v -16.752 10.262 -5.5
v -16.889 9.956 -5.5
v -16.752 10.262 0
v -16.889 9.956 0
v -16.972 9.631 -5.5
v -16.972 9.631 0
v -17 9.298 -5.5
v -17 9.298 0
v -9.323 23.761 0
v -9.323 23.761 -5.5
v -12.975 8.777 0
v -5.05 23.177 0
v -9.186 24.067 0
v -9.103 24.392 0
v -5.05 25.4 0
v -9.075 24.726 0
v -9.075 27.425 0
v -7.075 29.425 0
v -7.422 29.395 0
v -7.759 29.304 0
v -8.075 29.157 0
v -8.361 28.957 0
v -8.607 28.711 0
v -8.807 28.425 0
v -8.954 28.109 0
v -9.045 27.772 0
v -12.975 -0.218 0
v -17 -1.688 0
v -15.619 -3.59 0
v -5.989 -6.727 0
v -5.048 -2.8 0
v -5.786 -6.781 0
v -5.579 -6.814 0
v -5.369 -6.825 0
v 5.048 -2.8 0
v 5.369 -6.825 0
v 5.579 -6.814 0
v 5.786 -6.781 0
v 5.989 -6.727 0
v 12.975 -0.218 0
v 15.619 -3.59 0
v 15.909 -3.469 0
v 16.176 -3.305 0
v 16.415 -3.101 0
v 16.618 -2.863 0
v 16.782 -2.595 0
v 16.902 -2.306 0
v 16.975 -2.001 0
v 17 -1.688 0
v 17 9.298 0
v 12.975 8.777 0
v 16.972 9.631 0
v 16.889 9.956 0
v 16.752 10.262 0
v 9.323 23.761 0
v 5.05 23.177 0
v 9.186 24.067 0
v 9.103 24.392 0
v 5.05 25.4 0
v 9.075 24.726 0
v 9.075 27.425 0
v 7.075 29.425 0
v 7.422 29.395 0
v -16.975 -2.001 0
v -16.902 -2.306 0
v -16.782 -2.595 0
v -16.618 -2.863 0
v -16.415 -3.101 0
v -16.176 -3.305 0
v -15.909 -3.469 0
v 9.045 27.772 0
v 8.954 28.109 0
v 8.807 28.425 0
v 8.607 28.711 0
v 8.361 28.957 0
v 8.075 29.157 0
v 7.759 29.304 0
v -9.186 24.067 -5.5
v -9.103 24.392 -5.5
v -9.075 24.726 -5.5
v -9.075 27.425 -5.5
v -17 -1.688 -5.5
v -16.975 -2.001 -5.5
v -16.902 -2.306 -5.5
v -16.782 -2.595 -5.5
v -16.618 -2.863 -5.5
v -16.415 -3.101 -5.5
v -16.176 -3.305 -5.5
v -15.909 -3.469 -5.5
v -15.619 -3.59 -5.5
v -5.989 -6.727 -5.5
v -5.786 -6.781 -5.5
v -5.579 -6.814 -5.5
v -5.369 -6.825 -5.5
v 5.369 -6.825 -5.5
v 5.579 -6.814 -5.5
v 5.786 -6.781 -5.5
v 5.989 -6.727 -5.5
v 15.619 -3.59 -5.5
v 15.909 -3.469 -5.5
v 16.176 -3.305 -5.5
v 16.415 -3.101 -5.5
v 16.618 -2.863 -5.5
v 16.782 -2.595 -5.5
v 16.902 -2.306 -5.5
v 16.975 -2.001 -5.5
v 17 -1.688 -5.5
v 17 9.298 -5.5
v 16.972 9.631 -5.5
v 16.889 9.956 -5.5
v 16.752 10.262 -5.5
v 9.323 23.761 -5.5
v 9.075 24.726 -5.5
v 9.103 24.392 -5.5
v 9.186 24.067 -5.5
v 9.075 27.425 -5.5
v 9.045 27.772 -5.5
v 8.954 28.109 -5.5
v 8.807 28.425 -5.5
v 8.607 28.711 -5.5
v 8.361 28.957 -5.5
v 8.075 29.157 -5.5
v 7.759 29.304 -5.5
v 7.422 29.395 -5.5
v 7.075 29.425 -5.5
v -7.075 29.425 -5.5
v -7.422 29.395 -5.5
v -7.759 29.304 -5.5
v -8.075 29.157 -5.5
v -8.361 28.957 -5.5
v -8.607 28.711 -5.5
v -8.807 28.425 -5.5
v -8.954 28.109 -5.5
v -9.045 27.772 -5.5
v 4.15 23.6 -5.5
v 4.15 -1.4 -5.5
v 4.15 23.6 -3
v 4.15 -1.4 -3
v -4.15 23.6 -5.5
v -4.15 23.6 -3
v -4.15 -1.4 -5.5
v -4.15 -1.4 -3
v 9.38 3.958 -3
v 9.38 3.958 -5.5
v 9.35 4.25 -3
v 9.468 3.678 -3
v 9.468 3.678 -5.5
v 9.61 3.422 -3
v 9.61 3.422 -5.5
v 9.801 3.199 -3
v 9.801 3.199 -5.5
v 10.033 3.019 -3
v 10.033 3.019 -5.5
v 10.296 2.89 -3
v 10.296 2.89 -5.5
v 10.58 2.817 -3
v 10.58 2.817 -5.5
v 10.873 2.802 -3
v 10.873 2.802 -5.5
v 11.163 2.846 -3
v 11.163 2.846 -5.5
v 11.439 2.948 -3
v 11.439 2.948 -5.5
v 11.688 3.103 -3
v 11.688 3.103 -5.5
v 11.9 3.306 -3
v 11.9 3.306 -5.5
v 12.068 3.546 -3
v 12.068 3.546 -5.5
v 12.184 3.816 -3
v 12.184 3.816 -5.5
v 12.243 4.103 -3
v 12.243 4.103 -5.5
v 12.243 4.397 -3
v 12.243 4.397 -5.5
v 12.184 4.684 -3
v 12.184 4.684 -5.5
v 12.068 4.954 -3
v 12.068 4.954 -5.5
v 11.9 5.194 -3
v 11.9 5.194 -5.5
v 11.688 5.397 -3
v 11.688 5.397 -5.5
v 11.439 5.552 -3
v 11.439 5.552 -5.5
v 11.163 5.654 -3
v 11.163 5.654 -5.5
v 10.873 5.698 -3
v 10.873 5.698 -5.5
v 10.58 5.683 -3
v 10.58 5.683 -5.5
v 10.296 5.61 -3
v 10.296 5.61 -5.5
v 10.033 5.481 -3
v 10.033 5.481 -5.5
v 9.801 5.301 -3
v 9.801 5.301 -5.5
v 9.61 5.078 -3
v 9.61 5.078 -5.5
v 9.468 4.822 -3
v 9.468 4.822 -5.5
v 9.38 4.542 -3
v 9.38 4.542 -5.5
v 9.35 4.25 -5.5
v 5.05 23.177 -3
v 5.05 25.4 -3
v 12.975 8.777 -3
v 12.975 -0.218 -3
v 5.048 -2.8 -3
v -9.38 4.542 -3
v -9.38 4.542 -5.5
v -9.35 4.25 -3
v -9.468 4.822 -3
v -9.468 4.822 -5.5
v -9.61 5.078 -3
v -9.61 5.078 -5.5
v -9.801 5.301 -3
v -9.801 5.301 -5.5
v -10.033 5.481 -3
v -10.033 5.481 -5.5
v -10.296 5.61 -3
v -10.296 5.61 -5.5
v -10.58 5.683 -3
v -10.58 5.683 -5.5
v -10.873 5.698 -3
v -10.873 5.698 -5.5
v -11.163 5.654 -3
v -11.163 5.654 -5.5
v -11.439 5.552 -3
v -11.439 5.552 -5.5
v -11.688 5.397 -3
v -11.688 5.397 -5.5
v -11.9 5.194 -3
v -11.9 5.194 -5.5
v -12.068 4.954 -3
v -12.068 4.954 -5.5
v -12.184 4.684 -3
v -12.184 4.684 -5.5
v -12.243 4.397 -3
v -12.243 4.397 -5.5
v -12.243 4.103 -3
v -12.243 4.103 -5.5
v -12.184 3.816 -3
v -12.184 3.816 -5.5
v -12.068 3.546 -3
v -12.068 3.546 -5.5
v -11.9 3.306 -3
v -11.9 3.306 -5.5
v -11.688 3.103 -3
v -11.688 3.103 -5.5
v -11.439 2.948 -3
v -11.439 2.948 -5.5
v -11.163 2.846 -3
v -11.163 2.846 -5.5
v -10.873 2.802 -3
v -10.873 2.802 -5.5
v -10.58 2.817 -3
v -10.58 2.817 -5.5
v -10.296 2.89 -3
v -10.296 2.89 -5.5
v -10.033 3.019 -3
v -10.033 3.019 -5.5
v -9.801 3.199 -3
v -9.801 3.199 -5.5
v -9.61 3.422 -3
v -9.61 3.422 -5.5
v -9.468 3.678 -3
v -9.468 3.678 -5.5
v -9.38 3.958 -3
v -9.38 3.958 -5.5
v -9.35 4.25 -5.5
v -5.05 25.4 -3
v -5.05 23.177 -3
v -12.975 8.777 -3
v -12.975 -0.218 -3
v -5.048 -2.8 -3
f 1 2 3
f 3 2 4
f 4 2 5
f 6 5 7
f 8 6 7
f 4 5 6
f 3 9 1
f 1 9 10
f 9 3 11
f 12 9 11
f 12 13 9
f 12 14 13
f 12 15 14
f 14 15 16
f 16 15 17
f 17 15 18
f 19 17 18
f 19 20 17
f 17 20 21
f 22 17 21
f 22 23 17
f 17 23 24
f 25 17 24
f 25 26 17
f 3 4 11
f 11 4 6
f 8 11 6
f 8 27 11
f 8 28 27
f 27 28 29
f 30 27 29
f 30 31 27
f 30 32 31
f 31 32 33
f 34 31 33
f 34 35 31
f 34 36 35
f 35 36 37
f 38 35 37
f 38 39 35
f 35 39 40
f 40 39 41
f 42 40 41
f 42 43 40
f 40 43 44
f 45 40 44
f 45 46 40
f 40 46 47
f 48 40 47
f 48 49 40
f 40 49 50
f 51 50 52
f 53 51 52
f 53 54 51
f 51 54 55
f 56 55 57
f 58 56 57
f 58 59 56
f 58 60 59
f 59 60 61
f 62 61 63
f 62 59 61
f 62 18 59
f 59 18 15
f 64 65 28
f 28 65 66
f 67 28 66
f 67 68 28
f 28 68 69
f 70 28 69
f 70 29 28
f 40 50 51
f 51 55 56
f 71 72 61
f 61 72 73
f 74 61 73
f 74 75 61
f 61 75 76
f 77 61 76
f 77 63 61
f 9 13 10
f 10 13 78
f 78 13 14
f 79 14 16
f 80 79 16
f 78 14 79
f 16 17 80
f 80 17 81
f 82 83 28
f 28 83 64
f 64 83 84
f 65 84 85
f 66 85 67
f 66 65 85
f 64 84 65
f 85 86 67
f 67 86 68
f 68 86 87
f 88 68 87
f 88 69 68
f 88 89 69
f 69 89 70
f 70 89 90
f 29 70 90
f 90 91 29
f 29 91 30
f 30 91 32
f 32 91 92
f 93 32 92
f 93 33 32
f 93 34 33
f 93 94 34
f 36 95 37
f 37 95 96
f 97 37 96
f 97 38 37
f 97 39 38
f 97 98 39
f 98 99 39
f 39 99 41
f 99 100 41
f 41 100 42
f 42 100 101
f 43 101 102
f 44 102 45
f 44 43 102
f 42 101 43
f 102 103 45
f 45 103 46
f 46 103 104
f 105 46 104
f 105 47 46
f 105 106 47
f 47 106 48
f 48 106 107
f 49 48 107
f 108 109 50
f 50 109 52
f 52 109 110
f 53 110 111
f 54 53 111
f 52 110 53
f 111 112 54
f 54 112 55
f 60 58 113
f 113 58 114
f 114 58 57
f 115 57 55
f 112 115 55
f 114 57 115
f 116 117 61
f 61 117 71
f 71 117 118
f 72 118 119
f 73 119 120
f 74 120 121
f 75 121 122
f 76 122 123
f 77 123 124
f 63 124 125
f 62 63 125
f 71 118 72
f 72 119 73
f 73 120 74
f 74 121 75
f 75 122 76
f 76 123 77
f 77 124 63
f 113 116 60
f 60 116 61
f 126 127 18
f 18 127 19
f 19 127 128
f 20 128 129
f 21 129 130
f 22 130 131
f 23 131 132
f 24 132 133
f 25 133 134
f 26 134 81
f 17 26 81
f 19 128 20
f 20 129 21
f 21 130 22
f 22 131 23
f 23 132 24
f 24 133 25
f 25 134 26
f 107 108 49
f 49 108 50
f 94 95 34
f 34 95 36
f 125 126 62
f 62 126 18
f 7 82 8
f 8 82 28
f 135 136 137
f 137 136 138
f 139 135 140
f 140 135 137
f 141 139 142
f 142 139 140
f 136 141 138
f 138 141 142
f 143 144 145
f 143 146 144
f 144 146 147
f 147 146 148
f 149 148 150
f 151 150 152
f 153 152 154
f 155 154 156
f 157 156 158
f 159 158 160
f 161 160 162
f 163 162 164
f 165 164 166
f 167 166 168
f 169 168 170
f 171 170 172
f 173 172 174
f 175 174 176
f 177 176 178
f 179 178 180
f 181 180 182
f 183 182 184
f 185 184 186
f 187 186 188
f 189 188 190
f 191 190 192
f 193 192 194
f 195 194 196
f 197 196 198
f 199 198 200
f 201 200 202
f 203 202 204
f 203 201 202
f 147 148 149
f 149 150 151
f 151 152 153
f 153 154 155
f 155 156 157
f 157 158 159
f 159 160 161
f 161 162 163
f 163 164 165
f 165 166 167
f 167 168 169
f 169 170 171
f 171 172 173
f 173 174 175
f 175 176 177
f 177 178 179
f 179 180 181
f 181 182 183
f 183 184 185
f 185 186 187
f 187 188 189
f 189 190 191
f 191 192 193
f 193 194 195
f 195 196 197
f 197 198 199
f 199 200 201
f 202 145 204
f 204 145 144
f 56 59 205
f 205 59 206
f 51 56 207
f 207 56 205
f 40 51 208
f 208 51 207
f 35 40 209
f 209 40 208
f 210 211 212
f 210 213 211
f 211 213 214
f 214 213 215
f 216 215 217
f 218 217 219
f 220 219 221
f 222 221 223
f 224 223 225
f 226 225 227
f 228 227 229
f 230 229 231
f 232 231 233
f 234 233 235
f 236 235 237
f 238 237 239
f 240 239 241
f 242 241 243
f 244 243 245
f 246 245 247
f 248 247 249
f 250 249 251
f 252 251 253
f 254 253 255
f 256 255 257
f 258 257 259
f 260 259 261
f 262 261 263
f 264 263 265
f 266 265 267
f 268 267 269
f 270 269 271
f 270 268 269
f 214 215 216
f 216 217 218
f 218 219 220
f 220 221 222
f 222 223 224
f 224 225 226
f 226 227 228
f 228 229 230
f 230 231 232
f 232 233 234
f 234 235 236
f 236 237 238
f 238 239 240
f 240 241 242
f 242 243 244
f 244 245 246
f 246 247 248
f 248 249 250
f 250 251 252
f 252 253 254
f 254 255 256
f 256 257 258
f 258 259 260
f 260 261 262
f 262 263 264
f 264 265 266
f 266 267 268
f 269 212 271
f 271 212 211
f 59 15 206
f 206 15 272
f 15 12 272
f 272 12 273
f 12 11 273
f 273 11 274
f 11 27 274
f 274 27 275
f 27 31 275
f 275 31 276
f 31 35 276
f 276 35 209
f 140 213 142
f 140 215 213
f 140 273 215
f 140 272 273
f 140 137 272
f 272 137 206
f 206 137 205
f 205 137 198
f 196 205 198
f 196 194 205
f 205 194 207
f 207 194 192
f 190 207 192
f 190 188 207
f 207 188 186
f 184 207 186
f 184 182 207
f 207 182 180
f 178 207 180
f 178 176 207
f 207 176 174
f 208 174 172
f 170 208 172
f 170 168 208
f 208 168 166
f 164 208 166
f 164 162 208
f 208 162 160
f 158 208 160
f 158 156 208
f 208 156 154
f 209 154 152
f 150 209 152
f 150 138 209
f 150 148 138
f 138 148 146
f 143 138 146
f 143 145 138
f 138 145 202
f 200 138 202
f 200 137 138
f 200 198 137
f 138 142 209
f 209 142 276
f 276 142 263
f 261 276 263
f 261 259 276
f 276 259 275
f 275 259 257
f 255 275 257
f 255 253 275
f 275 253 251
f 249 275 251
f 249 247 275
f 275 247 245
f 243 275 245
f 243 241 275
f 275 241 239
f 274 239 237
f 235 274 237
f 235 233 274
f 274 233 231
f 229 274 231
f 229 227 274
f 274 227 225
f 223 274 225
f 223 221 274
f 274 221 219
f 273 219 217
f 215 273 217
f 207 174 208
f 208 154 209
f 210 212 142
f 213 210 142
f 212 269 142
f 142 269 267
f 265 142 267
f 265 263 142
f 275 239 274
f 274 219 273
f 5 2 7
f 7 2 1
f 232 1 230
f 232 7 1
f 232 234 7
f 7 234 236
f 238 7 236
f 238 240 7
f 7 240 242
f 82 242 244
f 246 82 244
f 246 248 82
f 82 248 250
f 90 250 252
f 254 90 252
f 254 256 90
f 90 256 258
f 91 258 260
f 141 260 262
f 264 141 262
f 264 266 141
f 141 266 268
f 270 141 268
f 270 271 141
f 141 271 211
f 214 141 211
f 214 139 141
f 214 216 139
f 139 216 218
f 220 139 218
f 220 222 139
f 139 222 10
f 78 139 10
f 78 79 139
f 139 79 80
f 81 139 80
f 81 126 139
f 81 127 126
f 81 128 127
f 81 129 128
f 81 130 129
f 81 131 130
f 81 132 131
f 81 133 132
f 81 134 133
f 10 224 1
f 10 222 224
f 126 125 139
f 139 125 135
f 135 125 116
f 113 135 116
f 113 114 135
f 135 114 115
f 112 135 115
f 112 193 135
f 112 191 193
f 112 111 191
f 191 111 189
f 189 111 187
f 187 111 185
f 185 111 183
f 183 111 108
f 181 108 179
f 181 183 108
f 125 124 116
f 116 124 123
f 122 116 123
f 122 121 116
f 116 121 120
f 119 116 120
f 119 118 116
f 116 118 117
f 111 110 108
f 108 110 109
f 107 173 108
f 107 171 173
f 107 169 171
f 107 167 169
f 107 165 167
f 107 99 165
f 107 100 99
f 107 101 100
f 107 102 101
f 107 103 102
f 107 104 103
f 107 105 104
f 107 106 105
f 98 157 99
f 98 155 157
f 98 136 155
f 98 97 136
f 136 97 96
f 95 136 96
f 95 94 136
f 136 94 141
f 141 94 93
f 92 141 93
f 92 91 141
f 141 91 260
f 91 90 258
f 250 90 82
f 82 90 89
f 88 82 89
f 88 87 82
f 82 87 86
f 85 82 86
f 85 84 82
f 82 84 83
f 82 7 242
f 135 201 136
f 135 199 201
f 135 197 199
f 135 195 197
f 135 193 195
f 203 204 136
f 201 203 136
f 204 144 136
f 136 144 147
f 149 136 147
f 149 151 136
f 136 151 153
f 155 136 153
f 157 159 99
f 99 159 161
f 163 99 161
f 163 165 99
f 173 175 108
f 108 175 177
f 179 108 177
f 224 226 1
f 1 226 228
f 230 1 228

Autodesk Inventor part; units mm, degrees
ref_plane "YZ Plane" through (0, 0, 0) normal (1, 0, 0) x (0, 1, 0)
ref_plane "XZ Plane" through (0, 0, 0) normal (0, 1, 0) x (-1, 0, 0)
ref_plane "XY Plane" through (0, 0, 0) normal (0, 0, 1) x (1, 0, 0)
sketch "Sketch1" plane through (0, 0, 0) normal (0, 0, 1) x (1, 0, 0)
  line L0 (-5, -2.5) -> (5, -2.5) construction
  line L1 (5, -2.5) -> (12.675, 0) construction
  line L2 (-5, -2.5) -> (-12.675, 0)
  line L3 (12.675, 0) -> (-12.675, 0) construction
  line L4 (12.675, 0) -> (12.675, 8.7) construction
  line L5 (-12.675, 0) -> (-12.675, 8.7)
  line L6 (-12.675, 8.7) -> (-4.75, 23.1)
  line L7 (-4.75, 23.1) -> (-4.75, 25.1)
  line L8 (-4.75, 25.1) -> (4.75, 25.1) construction
  line L9 (4.75, 25.1) -> (4.75, 23.1) construction
  line L10 (4.75, 23.1) -> (12.675, 8.7) construction
  line L11 (0, -8.44) -> (0, 31.04) projected
  line L12 (0, 25.1) -> (0, -2.5)
  circle A0 centre (-10.8, 4.25) radius 1.25
  line L13 (-10.8, 4.25) -> (0, 4.25) construction
  line L14 (-4.75, 25.1) -> (0, 25.1)
  line L15 (-5, -2.5) -> (0, -2.5)
  line L16 (-5.05, 23.1771) -> (-12.975, 8.7771)
  line L17 (-12.975, 8.7771) -> (-12.975, -0.2178)
  line L18 (-12.975, -0.2178) -> (-5.0476, -2.8)
  line L19 (-5.0476, -2.8) -> (0.3, -2.8) construction
  line L20 (0.3, -2.8) -> (0.3, 25.4) construction
  line L21 (0.3, 25.4) -> (-5.05, 25.4) construction
  line L22 (-5.05, 25.4) -> (-5.05, 23.1771)
  line L23 (0, -2.5) -> (0, -2.8)
  line L24 (0, 25.1) -> (0, 25.4)
  line L25 (0, -2.8) -> (-5.0476, -2.8)
  line L26 (0, 25.4) -> (-5.05, 25.4)
  point P0 (0, 0)
  point P1 (0, 0)
  dimension "d0" = 10
  dimension "d1" = 25.35
  dimension "d2" = 2.5
  dimension "d3" = 8.7
  dimension "d4" = 27.6
  dimension "d6" = 2
  dimension "d7" = 9.5
  dimension "d42" = 2.5
  dimension "d43" = 10.8
  dimension "d44" = 6.75
  dimension "d53" = 0.3
sketch "Sketch8" plane through (0, 0, 0) normal (0, 0, 1) x (1, 0, 0)
  line L0 (-20, 30) -> (20, 30)
  line L1 (20, 30) -> (20, -10)
  line L2 (20, -10) -> (-20, -10)
  line L3 (-20, -10) -> (-20, 30)
  point P0 (0, 0)
  point P1 (0, -10)
  dimension "d45" = 40
  dimension "d46" = 10
extrude "MainBlock" add sketch "Sketch8" against normal blind 5.5
extrude "CartridgeCutout" cut sketch "Sketch1" against normal blind 3
sketch "Sketch10" plane through (-10.8, 4.25, 0) normal (0, 0, 1) x (1, 0, 0)
  circle A0 centre (0, 0) radius 1.25 projected
  circle A1 centre (0, 0) radius 1.45
  point P0 (10.8, -4.25)
  dimension "d56" = 0.2
extrude "PinHole" cut sketch "Sketch10" against normal through all contours A0 | A1
mirror "Mirror3" about plane through (0, 25.4, 0) normal (-1, 0, 0) of "CartridgeCutout", "PinHole"
sketch "Sketch12" plane through (0, 0, -3) normal (0, 0, 1) x (1, 0, 0)
  circle A0 centre (10.8, 4.25) radius 1.45 projected
  circle A1 centre (-10.8, 4.25) radius 1.45 projected
  line L0 (5.05, 25.4) -> (-5.05, 25.4) projected
  line L1 (-5.05, 23.1771) -> (-5.05, 25.4) projected
  line L2 (-12.975, 8.7771) -> (-5.05, 23.1771) projected
  line L3 (-12.975, -0.2178) -> (-12.975, 8.7771) projected
  line L4 (-5.0476, -2.8) -> (-12.975, -0.2178) projected
  line L5 (5.0476, -2.8) -> (-5.0476, -2.8) projected
  line L6 (5.0476, -2.8) -> (12.975, -0.2178) projected
  line L7 (12.975, -0.2178) -> (12.975, 8.7771) projected
  line L8 (12.975, 8.7771) -> (5.05, 23.1771) projected
  line L9 (5.05, 23.1771) -> (5.05, 25.4) projected
  line L10 (-4.15, 23.6) -> (4.15, 23.6)
  line L11 (4.15, 23.6) -> (4.15, -1.4)
  line L12 (4.15, -1.4) -> (-4.15, -1.4)
  line L13 (-4.15, -1.4) -> (-4.15, 23.6)
  point P0 (0, 0)
  point P1 (0, -1.4)
  dimension "d59" = 8.3
  dimension "d60" = 25
  dimension "d61" = 1.4
extrude "Extrusion12" cut sketch "Sketch12" against normal through all contours L10 L11 L12 L13
sketch "Sketch13" plane through (0, 0, 0) normal (0, 0, 1) x (1, 0, 0)
  line L0 (-5.05, 25.4) -> (5.05, 25.4) projected
  line L1 (5.05, 25.4) -> (5.05, 23.1771) projected
  line L2 (5.05, 23.1771) -> (12.975, 8.7771) projected
  line L3 (12.975, 8.7771) -> (12.975, -0.2178) projected
  line L4 (12.975, -0.2178) -> (5.0476, -2.8) projected
  line L5 (5.0476, -2.8) -> (-5.0476, -2.8) projected
  line L6 (-5.0476, -2.8) -> (-12.975, -0.2178) projected
  line L7 (-12.975, -0.2178) -> (-12.975, 8.7771) projected
  line L8 (-12.975, 8.7771) -> (-5.05, 23.1771) projected
  line L9 (-5.05, 23.1771) -> (-5.05, 25.4) projected
  line L10 (-20, 30) -> (20, 30) projected
  line L11 (-20, -10) -> (-20, 30) projected
  line L12 (20, -10) -> (-20, -10) projected
  line L13 (20, 30) -> (20, -10) projected
  line L14 (-17, 9.8115) -> (-17, -3.1399)
  line L15 (-17, -3.1399) -> (-5.6866, -6.825)
  line L16 (-5.6866, -6.825) -> (5.6866, -6.825)
  line L17 (5.6866, -6.825) -> (17, -3.1399)
  line L18 (17, -3.1399) -> (17, 9.8115)
  line L19 (17, 9.8115) -> (9.075, 24.2115)
  line L20 (9.075, 24.2115) -> (9.075, 29.425)
  line L21 (9.075, 29.425) -> (-9.075, 29.425)
  line L22 (-9.075, 29.425) -> (-9.075, 24.2115)
  line L23 (-9.075, 24.2115) -> (-17, 9.8115)
  point P0 (0, 0)
  dimension "d65" = 4.025
extrude "Extrusion13" cut sketch "Sketch13" against normal through all contours L10 L13 L12 L11
fillet "Fillet2" radius 2 10 edges at (-9.075, 29.425, -2.75) (9.075, 29.425, -2.75) (9.075, 24.2115, -2.75) (17, 9.8115, -2.75) (17, -3.1399, -2.75) (5.6866, -6.825, -2.75) (-5.6866, -6.825, -2.75) (-17, -3.1399, -2.75) (-9.075, 24.2115, -2.75) (-17, 9.8115, -2.75)
properties part number "InkjetHolderV2"
